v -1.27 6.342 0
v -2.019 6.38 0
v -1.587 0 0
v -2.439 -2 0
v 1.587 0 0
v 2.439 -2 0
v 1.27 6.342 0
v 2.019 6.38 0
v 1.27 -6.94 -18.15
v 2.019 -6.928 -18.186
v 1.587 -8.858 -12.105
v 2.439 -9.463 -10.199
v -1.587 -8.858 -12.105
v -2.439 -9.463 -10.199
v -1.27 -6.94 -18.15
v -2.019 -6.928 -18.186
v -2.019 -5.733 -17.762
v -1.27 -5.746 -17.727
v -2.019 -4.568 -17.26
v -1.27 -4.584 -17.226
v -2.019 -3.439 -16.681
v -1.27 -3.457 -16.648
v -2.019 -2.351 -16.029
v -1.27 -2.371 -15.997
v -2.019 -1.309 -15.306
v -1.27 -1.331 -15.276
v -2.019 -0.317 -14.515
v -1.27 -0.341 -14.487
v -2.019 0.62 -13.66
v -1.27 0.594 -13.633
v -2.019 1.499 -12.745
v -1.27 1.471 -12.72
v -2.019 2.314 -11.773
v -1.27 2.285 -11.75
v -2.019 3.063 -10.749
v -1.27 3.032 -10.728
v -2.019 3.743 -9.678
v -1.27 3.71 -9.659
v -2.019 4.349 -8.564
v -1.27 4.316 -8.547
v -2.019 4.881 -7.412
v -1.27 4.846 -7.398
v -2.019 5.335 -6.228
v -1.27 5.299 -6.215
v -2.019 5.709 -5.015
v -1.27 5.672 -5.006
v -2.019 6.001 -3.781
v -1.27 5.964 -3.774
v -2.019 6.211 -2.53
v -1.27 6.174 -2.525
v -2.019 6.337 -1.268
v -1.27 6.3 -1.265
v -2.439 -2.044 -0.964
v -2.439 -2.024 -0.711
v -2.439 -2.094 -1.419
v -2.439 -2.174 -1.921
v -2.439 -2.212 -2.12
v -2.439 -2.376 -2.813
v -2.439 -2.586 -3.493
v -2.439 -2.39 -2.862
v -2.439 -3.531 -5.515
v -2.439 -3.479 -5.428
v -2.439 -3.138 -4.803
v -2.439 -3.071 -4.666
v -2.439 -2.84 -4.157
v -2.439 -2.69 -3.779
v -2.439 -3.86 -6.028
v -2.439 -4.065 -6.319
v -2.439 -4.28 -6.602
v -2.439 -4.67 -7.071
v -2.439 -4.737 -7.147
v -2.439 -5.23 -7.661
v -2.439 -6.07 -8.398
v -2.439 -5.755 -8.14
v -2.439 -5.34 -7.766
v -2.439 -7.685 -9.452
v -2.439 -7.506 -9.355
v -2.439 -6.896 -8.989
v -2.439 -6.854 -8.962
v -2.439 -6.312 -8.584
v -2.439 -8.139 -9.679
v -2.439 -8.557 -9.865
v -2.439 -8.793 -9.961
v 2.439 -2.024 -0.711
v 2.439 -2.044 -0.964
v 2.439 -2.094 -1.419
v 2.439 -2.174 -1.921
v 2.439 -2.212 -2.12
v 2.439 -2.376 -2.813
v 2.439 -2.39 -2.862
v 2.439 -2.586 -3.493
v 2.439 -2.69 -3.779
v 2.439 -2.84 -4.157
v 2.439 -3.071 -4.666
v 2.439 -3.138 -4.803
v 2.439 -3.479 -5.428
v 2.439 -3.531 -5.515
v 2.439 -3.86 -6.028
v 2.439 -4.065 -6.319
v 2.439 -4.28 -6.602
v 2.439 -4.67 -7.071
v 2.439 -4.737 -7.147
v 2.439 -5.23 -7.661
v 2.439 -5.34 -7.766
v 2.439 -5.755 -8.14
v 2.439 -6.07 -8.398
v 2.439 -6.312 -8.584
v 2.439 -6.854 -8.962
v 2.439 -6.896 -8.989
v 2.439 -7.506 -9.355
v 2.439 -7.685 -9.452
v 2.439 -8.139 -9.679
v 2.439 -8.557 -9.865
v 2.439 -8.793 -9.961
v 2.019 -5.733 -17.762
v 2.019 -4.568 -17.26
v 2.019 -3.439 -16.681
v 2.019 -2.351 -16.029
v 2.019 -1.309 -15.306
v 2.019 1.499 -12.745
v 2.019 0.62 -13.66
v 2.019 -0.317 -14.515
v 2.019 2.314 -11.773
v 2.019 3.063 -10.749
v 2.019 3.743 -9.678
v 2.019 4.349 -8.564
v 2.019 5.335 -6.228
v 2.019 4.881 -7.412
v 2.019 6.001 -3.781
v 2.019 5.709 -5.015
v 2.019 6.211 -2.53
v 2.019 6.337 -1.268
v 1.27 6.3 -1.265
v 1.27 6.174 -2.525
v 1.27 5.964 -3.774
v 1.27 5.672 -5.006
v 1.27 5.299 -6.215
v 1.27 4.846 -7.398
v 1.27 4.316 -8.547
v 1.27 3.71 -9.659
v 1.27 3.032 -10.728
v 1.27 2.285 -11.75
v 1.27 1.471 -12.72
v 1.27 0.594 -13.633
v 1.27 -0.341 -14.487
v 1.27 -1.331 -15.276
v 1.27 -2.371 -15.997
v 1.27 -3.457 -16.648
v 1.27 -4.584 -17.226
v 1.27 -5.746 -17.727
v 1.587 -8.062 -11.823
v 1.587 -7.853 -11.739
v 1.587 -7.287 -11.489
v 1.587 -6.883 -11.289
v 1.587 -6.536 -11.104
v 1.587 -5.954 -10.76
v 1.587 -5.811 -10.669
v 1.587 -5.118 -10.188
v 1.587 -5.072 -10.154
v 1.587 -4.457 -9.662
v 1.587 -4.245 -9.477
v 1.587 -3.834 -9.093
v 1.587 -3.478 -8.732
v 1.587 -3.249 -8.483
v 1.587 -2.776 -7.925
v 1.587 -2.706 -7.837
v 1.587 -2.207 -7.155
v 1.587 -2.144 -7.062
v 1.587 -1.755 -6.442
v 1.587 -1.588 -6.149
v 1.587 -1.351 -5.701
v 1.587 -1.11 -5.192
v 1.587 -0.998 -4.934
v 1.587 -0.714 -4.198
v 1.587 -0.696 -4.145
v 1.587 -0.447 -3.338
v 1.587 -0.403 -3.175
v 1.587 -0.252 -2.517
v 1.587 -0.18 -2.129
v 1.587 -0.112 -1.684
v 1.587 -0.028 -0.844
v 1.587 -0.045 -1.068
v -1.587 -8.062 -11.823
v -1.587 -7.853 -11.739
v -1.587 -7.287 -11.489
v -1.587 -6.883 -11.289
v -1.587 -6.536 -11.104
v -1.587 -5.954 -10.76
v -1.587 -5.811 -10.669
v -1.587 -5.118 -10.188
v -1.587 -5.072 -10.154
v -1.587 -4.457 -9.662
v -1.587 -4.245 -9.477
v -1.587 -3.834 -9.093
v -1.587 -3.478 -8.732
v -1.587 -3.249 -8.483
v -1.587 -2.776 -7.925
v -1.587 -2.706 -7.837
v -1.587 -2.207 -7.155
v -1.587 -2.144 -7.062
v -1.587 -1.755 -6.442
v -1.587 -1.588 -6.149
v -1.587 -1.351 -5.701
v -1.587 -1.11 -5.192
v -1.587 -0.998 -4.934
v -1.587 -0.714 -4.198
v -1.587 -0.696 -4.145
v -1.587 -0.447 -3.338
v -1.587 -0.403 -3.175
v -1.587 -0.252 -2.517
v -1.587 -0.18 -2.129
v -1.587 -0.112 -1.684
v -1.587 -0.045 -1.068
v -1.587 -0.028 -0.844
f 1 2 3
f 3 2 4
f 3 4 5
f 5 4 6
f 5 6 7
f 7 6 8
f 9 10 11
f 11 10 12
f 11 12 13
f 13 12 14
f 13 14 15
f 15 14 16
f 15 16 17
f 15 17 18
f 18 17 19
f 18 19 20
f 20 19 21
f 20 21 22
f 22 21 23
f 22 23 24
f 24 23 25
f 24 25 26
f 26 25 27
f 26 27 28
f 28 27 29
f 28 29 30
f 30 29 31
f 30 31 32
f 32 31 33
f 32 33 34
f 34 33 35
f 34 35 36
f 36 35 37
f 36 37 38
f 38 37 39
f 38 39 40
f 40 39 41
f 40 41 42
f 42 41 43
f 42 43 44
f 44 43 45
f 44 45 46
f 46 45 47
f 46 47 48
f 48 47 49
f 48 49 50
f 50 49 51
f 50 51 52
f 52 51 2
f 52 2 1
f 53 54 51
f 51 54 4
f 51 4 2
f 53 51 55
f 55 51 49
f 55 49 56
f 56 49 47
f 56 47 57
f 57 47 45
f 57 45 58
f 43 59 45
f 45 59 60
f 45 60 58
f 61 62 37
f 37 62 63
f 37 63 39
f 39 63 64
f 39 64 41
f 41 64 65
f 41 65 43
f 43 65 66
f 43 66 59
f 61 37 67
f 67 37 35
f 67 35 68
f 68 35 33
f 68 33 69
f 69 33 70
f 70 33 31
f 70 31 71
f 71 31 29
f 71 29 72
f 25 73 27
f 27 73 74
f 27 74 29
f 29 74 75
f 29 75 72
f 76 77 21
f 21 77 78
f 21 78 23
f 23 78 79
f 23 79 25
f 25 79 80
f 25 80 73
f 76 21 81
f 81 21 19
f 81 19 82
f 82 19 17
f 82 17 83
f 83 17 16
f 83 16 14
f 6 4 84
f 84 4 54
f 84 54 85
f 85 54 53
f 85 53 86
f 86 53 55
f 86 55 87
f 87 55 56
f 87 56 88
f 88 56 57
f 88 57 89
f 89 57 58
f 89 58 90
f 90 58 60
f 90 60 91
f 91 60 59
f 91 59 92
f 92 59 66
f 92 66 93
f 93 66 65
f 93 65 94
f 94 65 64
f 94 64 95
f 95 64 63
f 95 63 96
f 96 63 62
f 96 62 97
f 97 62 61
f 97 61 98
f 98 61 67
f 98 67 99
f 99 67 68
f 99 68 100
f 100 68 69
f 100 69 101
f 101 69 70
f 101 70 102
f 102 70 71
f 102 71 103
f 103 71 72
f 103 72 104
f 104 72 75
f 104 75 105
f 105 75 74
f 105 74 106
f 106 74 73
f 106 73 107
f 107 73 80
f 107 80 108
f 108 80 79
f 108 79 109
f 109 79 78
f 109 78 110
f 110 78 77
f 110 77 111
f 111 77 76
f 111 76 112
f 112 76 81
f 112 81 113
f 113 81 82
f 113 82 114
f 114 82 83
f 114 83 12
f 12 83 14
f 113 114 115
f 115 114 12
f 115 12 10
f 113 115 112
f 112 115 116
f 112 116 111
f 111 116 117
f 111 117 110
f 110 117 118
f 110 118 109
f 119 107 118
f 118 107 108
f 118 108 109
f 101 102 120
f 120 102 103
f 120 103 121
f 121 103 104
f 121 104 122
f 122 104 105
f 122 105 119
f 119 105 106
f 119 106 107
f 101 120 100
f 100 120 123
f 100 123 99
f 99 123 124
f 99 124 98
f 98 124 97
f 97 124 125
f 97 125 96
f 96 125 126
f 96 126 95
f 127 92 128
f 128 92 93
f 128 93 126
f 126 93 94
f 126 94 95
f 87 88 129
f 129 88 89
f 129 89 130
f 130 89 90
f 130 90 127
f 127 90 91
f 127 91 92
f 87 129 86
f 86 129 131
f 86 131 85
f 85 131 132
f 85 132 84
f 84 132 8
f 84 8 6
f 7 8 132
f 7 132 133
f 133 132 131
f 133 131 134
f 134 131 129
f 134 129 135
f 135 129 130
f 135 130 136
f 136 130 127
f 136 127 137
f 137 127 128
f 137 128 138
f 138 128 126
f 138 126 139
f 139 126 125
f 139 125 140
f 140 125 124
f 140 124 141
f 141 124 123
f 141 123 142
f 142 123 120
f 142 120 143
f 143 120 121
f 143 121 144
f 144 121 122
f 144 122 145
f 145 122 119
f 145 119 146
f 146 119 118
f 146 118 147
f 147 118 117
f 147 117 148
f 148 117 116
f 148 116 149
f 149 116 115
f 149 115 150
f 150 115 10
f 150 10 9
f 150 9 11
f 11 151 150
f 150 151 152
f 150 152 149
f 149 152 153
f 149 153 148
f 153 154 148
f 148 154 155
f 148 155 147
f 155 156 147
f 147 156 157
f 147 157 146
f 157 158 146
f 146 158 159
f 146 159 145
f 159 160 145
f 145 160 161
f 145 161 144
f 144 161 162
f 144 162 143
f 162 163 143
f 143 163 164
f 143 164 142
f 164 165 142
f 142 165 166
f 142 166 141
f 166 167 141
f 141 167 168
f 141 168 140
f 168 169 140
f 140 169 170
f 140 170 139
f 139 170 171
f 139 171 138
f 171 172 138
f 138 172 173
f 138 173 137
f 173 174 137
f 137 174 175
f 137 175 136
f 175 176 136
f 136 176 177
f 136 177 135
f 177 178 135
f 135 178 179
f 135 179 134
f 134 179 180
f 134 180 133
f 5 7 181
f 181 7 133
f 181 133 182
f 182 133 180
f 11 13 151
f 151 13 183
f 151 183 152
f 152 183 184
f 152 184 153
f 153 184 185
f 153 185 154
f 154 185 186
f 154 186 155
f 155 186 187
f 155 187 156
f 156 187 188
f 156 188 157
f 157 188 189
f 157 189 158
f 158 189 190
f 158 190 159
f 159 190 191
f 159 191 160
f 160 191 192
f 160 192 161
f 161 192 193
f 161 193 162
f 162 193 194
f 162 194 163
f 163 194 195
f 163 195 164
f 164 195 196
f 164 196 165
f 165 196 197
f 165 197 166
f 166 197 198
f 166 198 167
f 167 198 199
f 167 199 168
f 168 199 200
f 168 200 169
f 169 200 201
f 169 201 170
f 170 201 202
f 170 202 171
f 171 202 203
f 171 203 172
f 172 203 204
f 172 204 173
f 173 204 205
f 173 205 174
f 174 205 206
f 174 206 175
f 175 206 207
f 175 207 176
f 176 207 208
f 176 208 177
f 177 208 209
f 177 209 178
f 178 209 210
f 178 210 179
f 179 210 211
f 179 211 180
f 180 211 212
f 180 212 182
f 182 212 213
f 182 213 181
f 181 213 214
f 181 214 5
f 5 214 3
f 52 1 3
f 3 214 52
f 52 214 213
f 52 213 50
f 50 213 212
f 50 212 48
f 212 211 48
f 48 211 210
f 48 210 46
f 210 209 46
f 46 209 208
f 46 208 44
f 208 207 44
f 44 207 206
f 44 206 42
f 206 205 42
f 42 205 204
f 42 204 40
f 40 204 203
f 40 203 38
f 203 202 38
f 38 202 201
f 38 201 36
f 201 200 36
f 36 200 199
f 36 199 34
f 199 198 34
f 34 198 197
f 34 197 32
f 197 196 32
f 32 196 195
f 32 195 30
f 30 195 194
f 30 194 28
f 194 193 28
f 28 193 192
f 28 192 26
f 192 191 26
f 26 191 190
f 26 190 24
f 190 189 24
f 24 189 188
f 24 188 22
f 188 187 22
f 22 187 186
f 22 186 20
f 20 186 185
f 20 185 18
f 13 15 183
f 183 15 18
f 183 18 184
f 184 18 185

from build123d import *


with BuildPart() as part:
    # Sweep1: sweep along a path in Sketch3
    with BuildLine(Plane(origin=(0, 0, 0), x_dir=(0, 0, -1), z_dir=(1, 0, 0))) as sweep1_path:
        ThreePointArc((0, 0), (7.5, -2.45109762), (12.105002811, -8.858267717))
    # Sketch1 → Sweep1 (sweep)
    with BuildSketch(Plane.XY):
        Polygon((-2.019073099, 6.379558093), (-2.43857571, -2), (2.43857571, -2), (2.019073099, 6.379558093), (1.27, 6.342057533), (1.5875, 0), (-1.5875, 0), (-1.27, 6.342057533), align=None)
    sweep(path=sweep1_path.line)


solid = part.part
